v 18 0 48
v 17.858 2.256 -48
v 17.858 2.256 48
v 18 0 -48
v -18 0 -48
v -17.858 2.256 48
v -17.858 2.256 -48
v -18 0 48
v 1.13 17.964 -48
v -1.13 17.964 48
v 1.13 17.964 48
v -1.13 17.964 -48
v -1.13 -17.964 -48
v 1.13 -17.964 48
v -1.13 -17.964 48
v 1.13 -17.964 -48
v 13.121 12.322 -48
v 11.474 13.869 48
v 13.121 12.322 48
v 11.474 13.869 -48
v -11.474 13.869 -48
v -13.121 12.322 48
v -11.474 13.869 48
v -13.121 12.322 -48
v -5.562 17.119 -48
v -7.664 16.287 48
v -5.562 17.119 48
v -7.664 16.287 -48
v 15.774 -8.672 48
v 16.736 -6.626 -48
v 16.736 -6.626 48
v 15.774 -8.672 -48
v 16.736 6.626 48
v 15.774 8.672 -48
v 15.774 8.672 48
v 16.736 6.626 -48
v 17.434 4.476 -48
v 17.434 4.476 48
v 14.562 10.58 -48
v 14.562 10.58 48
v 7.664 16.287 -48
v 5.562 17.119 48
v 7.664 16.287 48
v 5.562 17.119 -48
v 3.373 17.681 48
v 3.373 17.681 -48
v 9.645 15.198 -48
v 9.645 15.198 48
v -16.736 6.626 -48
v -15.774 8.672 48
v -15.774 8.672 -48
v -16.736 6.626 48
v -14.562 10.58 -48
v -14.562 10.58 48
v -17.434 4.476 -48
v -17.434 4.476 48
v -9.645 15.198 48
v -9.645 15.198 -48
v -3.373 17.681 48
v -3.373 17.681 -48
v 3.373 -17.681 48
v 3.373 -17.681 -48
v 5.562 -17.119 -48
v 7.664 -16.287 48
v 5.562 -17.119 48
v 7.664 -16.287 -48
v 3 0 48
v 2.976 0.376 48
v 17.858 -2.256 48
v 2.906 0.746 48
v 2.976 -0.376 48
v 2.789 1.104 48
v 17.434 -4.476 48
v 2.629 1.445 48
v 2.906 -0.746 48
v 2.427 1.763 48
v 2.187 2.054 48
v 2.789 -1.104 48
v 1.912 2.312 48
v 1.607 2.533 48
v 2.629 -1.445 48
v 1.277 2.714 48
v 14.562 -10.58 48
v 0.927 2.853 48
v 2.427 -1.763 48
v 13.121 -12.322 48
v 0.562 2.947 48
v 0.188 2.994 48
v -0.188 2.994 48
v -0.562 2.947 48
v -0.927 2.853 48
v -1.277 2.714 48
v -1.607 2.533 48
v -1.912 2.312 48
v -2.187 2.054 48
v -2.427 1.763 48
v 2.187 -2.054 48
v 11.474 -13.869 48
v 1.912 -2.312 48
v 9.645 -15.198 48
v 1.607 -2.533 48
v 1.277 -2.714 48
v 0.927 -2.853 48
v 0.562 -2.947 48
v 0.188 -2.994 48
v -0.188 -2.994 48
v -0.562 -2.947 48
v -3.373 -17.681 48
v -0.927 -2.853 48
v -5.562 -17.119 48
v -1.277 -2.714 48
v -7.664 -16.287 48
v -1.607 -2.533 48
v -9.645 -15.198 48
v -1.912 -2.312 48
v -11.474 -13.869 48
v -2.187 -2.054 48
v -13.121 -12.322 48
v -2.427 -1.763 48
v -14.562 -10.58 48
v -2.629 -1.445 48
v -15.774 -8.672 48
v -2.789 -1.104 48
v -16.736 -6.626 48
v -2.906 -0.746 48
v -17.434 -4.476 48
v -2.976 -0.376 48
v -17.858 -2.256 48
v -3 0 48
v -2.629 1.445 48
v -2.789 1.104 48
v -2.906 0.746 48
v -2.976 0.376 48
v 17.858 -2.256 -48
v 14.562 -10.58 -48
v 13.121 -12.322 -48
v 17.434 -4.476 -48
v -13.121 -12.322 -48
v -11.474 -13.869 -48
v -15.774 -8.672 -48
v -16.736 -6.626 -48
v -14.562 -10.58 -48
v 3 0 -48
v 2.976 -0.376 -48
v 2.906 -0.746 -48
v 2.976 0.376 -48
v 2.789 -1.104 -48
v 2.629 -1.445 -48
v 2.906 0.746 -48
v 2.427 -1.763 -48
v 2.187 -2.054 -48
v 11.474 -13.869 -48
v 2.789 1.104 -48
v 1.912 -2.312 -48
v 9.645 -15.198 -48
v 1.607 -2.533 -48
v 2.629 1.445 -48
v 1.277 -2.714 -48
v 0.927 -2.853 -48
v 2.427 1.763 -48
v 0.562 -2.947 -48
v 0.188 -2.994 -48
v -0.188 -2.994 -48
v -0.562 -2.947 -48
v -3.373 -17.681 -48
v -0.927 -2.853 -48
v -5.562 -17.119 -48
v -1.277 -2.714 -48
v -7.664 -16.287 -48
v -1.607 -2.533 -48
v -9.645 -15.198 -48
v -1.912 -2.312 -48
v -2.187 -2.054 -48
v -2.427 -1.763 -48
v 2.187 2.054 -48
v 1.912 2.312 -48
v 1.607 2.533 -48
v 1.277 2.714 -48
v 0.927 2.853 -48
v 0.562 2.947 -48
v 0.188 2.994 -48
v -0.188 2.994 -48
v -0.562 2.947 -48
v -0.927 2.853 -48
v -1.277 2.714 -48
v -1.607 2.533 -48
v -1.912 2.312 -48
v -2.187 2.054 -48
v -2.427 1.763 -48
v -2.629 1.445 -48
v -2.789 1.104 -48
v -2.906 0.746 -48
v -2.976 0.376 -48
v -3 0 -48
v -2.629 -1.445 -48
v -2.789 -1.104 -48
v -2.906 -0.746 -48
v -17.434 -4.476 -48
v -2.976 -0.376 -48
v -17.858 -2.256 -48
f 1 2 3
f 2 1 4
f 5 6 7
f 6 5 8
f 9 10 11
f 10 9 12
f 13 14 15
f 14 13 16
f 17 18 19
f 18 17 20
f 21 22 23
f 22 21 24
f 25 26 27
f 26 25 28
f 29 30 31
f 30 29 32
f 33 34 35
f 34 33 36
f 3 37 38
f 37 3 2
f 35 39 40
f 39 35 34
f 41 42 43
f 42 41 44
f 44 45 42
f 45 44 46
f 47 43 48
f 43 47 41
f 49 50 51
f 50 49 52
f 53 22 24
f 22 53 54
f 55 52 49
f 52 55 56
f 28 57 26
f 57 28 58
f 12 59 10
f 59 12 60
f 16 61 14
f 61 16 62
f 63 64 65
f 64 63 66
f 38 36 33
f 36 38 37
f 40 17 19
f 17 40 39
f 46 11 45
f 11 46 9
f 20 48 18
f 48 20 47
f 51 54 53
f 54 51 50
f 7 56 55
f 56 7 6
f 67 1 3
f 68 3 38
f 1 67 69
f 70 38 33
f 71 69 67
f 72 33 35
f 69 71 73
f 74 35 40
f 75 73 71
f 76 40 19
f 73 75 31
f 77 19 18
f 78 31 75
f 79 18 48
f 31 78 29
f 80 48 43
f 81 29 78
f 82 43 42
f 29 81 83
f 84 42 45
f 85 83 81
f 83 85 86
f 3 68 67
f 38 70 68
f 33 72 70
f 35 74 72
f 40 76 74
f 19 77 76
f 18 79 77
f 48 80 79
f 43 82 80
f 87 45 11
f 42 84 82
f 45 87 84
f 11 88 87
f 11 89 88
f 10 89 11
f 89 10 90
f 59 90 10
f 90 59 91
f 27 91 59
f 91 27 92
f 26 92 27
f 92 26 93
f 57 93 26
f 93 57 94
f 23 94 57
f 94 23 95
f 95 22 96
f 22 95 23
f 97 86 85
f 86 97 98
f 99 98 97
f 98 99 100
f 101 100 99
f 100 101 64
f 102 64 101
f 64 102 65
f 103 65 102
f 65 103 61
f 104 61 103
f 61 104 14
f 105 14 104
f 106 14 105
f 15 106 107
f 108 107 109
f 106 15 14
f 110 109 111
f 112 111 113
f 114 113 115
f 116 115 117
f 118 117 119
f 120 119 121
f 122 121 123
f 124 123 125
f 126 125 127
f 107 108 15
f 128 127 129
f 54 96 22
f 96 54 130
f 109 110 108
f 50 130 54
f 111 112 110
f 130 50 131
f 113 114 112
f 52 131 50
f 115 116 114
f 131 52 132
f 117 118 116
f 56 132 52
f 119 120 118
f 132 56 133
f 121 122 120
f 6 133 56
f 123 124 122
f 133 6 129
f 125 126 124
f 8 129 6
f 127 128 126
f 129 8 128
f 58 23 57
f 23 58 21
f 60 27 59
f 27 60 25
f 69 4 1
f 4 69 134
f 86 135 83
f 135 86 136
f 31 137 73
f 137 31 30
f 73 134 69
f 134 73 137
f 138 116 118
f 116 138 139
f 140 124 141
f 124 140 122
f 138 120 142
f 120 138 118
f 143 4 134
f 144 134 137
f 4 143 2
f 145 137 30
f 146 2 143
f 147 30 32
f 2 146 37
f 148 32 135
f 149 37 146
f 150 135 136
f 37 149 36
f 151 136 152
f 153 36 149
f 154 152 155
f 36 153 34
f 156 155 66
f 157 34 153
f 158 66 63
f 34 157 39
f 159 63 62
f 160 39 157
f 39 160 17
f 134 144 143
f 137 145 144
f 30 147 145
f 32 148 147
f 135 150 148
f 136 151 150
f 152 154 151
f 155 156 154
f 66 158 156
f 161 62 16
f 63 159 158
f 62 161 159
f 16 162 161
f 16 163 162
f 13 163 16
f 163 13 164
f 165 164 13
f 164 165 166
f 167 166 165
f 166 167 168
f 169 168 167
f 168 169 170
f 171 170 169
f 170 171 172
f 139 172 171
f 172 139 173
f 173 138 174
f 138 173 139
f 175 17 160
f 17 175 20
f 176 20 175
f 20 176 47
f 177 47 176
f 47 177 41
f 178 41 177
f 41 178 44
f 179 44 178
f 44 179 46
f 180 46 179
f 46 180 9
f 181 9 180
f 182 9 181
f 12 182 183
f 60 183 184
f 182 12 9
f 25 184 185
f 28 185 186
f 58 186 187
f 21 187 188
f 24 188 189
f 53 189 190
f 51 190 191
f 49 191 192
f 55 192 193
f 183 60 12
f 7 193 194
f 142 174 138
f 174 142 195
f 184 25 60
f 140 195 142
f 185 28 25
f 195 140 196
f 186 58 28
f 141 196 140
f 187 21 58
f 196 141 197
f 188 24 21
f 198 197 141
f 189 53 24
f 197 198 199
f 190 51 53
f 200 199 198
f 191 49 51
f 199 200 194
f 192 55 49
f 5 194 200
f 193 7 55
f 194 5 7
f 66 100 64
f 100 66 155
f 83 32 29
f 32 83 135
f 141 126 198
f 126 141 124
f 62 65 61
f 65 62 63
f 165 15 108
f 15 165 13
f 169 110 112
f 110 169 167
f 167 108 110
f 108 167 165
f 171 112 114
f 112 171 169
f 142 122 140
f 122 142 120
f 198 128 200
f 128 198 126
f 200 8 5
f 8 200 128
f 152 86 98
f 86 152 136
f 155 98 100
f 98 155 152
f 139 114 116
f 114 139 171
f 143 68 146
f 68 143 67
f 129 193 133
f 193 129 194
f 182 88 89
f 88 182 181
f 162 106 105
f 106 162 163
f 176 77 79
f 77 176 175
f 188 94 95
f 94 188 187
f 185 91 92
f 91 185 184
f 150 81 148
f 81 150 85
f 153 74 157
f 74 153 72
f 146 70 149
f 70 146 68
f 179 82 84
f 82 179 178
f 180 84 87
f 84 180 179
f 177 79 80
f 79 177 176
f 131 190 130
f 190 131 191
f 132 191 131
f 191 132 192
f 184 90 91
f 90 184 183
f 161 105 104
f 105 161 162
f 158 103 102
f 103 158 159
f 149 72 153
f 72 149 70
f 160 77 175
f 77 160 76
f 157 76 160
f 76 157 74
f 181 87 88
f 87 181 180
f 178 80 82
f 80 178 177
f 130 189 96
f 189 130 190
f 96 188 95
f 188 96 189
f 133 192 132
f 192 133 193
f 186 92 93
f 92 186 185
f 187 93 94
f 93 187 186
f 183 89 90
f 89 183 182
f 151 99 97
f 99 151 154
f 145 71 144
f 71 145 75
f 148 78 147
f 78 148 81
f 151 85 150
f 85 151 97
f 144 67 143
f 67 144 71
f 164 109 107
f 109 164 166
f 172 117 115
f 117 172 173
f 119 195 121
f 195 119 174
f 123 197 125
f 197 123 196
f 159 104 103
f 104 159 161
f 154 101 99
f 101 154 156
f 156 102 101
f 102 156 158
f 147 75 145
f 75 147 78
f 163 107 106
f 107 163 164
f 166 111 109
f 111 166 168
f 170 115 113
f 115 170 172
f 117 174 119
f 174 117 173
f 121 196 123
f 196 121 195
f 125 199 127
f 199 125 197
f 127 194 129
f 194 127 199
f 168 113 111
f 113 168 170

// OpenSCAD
$fn = 50;


difference() {
	union() {
		translate(v = [0, 0, -48.0000000000]) {
			cylinder(h = 96, r = 18.0000000000);
		}
	}
	union() {
		translate(v = [0, 0, -100.0000000000]) {
			cylinder(h = 200, r = 3.0000000000);
		}
	}
}
